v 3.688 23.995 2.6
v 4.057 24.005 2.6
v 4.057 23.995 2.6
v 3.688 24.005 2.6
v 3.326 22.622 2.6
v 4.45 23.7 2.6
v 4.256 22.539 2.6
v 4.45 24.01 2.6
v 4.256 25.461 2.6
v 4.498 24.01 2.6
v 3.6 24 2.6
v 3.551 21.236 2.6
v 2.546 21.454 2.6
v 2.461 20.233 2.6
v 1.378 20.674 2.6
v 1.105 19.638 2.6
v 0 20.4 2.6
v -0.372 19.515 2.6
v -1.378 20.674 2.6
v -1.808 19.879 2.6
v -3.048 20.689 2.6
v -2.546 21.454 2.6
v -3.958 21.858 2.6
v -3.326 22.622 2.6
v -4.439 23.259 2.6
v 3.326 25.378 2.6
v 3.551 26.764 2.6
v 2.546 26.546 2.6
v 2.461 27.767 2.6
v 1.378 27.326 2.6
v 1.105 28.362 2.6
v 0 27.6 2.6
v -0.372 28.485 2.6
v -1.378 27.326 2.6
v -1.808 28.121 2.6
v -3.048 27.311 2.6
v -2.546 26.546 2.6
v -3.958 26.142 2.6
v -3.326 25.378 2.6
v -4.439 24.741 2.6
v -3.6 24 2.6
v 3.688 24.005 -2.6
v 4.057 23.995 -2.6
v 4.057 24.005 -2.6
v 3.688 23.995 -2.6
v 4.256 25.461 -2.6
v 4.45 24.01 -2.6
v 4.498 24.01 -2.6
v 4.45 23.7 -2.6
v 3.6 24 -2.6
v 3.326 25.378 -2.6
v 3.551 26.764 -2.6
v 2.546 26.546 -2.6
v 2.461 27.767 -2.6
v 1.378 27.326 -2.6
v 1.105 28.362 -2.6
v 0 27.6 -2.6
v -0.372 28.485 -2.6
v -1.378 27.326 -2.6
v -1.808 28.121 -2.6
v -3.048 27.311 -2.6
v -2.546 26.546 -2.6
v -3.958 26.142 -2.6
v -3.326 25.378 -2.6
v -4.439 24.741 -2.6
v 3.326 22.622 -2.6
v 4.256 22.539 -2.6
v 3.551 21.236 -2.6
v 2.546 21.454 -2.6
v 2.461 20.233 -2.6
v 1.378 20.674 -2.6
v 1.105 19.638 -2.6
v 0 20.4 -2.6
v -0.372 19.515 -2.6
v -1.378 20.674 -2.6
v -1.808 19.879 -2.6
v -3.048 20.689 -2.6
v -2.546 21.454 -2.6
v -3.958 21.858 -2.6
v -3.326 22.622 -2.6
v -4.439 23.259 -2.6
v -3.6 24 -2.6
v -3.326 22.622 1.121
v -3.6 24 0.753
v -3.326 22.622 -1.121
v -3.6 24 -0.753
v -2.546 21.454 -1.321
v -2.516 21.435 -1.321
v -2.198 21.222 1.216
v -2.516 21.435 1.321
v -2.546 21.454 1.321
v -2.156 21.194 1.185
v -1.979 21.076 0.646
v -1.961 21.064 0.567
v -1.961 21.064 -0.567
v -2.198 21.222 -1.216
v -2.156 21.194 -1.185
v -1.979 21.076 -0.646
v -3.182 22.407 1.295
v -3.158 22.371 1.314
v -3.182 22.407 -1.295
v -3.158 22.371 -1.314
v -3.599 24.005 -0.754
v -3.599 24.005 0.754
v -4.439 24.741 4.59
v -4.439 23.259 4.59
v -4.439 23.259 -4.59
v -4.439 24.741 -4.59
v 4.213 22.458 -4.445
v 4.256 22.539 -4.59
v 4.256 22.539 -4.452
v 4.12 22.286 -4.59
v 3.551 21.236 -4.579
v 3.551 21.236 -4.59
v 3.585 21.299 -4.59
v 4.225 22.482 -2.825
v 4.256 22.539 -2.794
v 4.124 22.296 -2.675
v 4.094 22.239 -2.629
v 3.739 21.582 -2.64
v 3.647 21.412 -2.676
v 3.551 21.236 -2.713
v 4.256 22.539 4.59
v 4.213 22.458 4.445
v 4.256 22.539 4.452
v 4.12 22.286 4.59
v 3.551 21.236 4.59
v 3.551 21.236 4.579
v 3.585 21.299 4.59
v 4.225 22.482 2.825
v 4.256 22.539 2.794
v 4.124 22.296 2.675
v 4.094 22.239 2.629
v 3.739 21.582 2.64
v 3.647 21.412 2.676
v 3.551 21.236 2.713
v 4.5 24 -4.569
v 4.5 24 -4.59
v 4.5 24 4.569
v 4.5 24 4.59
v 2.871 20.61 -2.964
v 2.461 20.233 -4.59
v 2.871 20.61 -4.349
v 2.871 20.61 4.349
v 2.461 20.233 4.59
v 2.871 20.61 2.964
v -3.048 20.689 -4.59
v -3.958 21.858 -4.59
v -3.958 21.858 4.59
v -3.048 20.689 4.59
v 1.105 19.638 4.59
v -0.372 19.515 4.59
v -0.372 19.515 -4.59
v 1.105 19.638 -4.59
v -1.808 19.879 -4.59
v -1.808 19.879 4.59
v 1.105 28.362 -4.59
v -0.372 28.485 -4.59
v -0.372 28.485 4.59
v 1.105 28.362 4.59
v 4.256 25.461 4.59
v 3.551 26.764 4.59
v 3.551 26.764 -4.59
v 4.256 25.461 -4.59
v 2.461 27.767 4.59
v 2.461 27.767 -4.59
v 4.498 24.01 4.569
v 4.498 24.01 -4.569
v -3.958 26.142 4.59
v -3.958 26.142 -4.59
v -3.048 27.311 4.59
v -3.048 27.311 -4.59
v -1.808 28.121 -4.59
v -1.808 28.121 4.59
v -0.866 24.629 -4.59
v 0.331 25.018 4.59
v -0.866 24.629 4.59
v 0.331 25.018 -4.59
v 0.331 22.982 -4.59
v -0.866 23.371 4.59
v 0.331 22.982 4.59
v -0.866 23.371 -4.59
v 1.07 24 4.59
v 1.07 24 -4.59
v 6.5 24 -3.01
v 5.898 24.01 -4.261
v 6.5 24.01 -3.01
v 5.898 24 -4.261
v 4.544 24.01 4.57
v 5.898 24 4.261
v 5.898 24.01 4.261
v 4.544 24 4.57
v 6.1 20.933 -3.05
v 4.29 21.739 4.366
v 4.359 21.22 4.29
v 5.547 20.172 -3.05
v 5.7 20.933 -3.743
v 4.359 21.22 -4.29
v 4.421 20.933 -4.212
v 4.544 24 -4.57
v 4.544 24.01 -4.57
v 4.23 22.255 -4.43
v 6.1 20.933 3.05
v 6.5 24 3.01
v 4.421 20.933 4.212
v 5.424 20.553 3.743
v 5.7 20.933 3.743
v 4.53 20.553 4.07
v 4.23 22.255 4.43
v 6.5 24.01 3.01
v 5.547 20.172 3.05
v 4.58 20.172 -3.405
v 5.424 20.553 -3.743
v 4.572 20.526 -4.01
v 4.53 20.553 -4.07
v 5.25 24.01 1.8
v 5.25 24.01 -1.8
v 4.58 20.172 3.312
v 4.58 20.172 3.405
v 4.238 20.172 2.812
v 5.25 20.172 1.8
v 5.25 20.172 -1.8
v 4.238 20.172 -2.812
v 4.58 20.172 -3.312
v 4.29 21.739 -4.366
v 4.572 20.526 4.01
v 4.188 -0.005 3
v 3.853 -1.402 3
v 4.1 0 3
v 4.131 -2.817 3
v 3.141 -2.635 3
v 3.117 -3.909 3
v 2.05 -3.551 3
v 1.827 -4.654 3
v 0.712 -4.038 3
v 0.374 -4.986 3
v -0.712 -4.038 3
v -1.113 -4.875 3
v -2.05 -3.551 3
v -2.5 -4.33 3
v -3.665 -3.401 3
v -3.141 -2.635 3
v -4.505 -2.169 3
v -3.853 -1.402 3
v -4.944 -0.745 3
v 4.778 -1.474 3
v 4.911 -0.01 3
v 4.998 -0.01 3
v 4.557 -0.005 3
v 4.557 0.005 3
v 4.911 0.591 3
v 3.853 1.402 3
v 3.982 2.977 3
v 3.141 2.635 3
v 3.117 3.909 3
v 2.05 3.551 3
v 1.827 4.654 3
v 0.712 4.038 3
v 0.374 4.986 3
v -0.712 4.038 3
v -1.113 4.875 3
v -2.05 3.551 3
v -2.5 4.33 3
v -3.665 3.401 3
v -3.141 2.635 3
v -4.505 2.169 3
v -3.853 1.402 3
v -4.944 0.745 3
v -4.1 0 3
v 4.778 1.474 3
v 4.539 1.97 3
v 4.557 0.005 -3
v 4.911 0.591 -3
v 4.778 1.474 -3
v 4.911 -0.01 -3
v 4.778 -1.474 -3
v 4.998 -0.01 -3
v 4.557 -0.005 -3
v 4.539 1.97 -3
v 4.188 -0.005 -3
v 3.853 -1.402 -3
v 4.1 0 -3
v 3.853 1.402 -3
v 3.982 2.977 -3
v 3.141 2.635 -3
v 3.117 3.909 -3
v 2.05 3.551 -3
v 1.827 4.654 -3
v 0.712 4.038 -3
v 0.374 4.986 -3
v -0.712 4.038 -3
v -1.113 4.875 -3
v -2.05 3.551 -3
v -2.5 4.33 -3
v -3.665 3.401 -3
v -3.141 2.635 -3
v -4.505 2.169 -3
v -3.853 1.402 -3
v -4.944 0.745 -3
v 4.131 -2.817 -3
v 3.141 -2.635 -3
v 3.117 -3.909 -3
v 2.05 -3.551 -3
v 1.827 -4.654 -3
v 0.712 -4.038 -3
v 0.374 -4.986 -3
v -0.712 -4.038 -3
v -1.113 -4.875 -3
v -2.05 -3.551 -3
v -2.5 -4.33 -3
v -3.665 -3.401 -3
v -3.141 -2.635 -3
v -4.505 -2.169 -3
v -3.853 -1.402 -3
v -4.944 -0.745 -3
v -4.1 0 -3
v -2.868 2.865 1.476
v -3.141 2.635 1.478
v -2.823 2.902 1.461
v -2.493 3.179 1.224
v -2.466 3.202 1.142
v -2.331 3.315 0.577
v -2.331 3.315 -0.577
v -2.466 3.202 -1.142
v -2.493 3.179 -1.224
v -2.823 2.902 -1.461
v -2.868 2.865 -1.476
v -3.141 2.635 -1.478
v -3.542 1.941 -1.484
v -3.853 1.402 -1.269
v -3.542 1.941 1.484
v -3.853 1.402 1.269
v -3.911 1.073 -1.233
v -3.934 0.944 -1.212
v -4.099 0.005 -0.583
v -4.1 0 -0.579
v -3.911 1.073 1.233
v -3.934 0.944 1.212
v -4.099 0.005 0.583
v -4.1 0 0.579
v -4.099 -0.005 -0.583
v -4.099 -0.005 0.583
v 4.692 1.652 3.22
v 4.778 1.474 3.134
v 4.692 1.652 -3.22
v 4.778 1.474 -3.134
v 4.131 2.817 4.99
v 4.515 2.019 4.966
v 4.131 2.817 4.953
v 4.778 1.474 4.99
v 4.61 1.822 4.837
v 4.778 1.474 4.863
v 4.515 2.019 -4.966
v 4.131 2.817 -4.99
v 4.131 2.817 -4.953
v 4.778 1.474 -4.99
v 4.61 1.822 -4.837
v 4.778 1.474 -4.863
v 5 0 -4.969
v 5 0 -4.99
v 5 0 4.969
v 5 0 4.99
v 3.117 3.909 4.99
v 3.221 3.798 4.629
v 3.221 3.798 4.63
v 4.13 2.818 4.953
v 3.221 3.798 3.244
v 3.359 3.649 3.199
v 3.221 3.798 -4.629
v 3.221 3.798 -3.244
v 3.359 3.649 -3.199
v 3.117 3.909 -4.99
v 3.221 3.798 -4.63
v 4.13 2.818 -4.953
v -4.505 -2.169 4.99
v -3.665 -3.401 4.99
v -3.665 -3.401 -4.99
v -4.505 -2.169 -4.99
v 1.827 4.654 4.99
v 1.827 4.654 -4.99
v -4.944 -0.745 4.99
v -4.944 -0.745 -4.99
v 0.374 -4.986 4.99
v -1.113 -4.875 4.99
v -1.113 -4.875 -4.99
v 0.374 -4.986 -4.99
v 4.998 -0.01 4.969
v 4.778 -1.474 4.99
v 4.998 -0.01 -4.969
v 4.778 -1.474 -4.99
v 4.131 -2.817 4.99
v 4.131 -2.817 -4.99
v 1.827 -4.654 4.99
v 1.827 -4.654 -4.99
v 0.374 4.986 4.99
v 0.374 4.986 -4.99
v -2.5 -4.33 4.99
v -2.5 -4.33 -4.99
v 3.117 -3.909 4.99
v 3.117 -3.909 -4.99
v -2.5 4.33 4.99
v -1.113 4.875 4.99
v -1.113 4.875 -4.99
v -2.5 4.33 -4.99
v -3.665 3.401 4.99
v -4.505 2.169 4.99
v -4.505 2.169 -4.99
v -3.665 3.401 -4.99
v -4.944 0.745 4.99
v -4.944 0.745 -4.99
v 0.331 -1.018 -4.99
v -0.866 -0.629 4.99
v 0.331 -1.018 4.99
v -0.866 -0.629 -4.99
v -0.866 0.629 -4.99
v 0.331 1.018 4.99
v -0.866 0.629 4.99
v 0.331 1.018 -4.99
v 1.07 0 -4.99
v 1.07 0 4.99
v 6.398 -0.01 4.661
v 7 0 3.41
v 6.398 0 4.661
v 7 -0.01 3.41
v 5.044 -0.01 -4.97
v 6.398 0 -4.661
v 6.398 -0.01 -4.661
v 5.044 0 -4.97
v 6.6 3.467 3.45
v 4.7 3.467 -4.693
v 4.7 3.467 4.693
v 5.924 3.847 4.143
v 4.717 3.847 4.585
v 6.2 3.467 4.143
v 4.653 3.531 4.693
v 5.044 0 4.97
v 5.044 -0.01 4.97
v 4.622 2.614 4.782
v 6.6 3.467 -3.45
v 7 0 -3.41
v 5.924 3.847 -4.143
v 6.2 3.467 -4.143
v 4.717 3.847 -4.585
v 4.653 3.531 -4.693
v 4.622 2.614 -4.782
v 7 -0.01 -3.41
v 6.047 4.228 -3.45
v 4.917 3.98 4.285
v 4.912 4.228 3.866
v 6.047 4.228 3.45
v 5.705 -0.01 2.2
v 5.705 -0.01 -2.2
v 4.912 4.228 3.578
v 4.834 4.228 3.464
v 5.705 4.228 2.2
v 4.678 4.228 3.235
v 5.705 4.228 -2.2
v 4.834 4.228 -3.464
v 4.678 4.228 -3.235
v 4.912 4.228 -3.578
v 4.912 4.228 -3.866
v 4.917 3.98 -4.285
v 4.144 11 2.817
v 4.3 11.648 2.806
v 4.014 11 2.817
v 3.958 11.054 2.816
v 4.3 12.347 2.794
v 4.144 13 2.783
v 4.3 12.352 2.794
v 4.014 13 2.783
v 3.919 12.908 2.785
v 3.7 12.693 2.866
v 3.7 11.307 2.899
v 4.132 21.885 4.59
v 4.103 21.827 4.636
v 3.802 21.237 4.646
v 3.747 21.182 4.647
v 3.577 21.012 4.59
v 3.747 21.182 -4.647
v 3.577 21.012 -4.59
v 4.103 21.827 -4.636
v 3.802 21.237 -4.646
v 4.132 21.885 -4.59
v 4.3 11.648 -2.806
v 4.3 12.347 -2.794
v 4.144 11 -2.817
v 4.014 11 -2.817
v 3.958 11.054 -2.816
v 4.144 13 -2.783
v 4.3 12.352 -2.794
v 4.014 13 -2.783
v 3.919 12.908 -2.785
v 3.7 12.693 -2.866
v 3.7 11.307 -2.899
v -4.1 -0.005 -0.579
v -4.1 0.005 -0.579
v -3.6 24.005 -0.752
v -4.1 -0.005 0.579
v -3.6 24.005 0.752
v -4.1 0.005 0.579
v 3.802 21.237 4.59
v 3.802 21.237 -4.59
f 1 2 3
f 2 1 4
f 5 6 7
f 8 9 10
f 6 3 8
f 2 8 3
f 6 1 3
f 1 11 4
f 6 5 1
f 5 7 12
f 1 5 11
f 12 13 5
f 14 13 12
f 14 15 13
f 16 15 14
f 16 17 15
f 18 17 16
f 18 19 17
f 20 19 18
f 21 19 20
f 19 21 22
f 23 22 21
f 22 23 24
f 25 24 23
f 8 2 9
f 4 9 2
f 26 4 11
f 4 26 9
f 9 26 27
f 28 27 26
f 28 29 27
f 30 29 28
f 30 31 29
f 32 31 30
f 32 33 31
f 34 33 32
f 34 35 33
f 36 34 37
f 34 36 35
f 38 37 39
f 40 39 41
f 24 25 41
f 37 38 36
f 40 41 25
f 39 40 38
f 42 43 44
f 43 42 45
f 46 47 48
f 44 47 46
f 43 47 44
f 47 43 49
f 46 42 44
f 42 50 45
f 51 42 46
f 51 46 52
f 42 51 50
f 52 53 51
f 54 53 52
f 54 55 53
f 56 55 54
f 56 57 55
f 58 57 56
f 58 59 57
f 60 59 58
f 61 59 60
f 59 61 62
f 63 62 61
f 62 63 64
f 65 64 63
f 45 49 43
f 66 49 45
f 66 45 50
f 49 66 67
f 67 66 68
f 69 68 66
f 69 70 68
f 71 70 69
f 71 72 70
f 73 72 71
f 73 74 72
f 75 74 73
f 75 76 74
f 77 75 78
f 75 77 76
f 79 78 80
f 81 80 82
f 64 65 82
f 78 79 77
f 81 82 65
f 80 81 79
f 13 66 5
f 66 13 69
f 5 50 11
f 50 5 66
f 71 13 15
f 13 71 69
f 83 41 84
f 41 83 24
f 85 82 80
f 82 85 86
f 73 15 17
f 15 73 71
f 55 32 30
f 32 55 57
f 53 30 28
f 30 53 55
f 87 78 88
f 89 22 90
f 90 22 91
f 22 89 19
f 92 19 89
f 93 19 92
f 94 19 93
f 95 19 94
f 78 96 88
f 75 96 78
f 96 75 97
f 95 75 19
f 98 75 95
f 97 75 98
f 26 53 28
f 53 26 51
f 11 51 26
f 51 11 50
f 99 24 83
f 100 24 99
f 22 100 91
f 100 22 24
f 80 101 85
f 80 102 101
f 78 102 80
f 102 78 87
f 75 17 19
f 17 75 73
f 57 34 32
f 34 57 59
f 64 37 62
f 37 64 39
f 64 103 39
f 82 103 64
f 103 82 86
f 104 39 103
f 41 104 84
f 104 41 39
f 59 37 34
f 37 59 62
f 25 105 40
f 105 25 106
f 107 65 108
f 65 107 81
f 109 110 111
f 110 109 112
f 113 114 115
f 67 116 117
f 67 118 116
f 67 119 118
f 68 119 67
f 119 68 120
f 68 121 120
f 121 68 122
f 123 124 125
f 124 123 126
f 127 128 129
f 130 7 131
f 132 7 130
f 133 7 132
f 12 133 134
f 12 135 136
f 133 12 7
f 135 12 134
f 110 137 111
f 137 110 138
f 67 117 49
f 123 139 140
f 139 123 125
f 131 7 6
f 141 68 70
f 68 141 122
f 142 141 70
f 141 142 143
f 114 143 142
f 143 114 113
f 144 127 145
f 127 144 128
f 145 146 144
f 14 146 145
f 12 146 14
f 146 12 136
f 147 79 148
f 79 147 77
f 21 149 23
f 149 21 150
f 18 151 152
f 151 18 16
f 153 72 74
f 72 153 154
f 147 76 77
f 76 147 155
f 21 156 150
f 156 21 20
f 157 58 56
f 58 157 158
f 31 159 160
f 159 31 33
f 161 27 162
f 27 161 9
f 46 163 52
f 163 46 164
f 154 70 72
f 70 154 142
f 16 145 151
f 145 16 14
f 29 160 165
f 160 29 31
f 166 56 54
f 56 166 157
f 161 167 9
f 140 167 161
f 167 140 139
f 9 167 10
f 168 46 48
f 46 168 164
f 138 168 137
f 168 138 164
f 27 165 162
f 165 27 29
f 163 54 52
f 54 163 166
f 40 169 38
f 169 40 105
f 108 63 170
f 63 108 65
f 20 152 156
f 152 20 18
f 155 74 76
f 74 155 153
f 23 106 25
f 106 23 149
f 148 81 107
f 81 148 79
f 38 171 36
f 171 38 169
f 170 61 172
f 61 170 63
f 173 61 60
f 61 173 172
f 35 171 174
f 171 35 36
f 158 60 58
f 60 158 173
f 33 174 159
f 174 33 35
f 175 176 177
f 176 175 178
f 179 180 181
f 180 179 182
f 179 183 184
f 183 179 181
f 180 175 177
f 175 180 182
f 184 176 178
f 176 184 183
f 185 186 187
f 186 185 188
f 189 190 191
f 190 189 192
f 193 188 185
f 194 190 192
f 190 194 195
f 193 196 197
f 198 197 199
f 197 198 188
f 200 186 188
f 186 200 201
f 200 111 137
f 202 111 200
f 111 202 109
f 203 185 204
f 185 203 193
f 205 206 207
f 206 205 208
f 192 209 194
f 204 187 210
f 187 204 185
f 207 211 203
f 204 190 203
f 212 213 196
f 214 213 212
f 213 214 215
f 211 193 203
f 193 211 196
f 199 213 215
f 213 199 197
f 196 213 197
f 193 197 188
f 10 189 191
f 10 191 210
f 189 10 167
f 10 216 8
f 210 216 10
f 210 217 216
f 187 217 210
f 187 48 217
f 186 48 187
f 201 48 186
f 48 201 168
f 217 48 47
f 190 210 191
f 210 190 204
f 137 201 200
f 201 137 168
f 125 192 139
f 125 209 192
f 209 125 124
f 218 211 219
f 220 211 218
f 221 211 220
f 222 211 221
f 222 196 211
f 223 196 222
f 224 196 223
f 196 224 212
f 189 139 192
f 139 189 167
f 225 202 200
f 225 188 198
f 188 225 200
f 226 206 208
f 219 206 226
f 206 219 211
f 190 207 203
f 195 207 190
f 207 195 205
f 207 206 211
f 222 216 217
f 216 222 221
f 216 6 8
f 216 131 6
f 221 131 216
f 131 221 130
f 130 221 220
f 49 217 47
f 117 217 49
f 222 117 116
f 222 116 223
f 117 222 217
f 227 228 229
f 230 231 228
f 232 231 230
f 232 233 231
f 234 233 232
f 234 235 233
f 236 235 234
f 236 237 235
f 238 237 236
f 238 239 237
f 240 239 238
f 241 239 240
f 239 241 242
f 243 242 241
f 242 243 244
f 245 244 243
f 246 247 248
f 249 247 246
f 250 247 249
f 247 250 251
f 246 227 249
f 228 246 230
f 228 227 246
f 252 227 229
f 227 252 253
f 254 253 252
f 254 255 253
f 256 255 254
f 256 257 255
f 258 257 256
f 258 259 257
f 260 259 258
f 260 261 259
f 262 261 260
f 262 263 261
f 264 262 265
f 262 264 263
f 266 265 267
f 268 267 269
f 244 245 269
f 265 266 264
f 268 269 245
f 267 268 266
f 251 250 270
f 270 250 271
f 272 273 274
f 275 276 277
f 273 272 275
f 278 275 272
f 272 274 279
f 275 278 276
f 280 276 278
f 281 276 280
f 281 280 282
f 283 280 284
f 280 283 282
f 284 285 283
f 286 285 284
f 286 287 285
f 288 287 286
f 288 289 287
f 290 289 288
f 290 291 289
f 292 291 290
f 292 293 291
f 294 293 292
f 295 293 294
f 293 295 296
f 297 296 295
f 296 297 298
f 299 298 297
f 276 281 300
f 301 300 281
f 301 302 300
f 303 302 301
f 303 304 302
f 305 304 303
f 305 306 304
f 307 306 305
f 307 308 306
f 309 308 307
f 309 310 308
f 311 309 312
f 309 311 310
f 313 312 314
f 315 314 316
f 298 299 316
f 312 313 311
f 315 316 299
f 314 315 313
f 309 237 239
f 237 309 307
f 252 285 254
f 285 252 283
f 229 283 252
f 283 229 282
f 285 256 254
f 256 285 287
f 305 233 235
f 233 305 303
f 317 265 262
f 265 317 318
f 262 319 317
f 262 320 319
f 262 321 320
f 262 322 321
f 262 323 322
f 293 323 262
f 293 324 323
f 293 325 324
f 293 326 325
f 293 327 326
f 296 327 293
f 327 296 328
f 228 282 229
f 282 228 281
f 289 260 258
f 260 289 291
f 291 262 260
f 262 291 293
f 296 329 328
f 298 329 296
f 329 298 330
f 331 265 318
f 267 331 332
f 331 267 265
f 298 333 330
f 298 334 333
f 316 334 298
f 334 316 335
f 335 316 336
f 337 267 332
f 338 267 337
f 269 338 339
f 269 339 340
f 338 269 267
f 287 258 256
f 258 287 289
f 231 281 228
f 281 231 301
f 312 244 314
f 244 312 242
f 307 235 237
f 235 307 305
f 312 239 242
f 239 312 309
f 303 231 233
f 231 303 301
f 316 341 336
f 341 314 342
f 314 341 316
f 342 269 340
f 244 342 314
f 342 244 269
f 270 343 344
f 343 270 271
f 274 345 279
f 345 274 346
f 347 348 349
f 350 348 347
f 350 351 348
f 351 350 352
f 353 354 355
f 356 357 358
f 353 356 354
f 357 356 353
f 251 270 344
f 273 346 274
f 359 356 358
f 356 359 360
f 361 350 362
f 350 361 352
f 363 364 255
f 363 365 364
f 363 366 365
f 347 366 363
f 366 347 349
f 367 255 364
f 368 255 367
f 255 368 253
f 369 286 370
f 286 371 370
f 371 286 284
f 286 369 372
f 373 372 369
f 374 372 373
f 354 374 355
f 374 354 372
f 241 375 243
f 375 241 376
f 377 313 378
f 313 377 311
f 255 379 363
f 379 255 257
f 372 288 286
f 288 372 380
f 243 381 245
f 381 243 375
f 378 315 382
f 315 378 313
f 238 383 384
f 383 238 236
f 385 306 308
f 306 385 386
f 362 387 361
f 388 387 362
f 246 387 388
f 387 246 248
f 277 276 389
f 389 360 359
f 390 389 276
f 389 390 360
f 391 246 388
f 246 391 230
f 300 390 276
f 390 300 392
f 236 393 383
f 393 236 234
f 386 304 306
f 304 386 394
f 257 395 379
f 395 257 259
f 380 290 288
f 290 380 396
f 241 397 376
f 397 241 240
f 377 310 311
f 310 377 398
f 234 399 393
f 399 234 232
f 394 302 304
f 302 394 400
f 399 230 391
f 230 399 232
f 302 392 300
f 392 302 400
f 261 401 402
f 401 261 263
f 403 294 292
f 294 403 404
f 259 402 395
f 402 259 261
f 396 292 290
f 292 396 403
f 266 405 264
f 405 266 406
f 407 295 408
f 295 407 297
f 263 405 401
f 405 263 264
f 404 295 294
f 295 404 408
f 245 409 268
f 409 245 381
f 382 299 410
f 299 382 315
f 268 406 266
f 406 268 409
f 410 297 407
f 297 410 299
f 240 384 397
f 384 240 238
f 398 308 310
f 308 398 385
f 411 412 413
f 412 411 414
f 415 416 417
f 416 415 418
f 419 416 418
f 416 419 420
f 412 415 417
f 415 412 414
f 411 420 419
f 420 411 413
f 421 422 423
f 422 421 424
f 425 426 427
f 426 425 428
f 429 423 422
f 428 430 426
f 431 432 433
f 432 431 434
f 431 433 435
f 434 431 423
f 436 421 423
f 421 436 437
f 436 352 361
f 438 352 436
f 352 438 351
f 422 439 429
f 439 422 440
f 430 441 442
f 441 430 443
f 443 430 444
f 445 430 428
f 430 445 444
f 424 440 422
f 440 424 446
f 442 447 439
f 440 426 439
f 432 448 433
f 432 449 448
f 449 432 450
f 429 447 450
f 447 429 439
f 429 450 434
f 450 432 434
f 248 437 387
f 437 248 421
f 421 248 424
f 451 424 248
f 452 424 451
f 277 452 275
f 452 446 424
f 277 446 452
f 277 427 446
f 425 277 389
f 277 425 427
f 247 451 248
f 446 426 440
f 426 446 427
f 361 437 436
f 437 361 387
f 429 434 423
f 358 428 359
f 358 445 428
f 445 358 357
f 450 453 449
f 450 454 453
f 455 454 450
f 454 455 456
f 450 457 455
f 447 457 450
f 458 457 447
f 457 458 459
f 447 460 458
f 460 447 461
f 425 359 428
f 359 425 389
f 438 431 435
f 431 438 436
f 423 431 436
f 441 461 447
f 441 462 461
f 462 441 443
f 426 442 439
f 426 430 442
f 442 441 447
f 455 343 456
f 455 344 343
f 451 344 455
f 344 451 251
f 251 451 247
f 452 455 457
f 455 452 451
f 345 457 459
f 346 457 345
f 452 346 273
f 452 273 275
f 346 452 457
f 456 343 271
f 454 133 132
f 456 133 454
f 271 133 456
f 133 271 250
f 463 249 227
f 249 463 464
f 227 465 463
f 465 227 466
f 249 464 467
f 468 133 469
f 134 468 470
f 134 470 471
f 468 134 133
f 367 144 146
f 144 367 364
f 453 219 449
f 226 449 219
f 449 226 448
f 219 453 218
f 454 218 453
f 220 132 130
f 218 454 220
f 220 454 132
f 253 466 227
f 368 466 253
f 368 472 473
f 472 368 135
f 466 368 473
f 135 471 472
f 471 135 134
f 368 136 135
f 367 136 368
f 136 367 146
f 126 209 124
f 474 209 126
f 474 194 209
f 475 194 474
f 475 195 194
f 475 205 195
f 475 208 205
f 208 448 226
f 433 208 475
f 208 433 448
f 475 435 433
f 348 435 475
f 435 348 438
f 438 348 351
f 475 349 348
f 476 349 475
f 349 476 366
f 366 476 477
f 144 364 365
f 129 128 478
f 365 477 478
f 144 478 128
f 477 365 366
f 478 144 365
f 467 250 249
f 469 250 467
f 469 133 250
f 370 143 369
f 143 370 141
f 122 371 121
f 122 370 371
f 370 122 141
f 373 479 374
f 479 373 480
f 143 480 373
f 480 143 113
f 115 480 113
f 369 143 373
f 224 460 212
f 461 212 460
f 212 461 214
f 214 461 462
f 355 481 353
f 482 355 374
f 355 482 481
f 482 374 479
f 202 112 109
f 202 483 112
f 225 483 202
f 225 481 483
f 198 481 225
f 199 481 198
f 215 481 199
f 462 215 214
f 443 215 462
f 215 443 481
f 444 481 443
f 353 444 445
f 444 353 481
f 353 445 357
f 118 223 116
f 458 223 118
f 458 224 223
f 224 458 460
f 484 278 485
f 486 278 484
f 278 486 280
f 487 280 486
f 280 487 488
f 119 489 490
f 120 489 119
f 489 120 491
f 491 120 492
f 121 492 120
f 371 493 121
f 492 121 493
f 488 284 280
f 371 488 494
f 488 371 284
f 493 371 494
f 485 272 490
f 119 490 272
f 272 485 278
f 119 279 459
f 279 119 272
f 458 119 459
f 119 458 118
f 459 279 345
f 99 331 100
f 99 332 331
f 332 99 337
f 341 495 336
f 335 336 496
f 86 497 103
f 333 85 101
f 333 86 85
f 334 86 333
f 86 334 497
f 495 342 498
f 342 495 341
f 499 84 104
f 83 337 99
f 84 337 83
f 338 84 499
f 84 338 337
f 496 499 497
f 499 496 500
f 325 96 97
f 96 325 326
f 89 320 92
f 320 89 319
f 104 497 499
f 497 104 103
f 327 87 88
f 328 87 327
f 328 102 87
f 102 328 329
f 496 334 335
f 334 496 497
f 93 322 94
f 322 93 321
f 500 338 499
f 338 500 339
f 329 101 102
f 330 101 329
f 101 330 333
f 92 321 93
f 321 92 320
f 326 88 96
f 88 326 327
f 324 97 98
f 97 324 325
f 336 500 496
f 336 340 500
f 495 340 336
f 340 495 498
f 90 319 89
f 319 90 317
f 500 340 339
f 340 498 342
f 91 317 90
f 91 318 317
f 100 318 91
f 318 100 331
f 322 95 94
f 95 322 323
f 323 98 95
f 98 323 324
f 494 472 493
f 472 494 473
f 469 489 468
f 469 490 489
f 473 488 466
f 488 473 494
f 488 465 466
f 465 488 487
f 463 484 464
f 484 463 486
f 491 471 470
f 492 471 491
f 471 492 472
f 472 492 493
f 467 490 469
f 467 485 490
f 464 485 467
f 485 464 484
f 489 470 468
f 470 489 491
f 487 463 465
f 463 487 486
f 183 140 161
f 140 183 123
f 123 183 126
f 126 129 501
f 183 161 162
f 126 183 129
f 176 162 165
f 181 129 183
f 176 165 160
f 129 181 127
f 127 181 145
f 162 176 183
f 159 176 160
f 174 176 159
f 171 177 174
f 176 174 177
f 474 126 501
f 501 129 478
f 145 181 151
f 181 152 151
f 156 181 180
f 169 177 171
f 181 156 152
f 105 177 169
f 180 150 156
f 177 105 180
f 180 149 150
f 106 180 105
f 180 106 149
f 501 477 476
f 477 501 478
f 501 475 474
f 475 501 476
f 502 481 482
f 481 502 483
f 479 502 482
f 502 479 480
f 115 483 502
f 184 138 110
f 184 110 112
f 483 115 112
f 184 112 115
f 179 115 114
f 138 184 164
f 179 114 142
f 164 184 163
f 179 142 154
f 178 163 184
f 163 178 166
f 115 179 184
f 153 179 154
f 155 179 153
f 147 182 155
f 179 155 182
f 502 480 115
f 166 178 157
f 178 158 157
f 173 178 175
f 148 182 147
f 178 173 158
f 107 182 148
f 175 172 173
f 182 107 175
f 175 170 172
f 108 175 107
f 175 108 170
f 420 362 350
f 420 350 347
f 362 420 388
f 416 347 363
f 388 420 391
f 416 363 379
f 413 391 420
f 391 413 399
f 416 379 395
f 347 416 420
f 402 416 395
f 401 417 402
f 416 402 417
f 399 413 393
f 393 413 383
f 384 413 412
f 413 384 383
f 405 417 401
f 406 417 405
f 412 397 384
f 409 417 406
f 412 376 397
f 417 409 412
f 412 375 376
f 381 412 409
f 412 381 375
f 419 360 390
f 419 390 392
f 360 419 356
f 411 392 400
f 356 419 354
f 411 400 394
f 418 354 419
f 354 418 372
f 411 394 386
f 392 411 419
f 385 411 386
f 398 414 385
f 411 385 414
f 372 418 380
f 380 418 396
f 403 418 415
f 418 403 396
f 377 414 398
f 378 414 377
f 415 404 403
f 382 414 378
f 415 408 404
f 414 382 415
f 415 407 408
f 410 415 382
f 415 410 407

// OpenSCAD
$fa = 10; 
$fs = 1.5;


difference() {
	union() {
		translate(v = [0, 24, 0]) {
			union() {
				rotate(a = [180, 0, 0]) {
					difference() {
						cylinder(center = true, h = 9.2000000000, r = 4.5000000000);
						difference() {
							cylinder(center = true, h = 5.2000000000, r = 4.5100000000);
							cylinder(center = true, h = 5.2100000000, r = 3.6000000000);
						}
						cylinder(center = true, h = 9.2100000000, r = 1.0700000000);
					}
				}
				rotate(a = [180, 0, 0]) {
					translate(v = [0, 3.6000000000, 0]) {
						difference() {
							hull() {
								translate(v = [4.0000000000, -3.6000000000, 3.0000000000]) {
									rotate(a = [90, 0, 0]) {
										cylinder(h = 0.0100000000, r = 1.6000000000);
									}
								}
								translate(v = [4.0000000000, -3.6000000000, -3.0000000000]) {
									rotate(a = [90, 0, 0]) {
										cylinder(h = 0.0100000000, r = 1.6000000000);
									}
								}
								translate(v = [4.9000000000, -3.6000000000, -3.0100000000]) {
									rotate(a = [90, 0, 0]) {
										cylinder(h = 0.0100000000, r = 1.6000000000);
									}
								}
								translate(v = [4.9000000000, -3.6000000000, 3.0100000000]) {
									rotate(a = [90, 0, 0]) {
										cylinder(h = 0.0100000000, r = 1.6000000000);
									}
								}
								translate(v = [4.0000000000, 0, 2.8000000000]) {
									translate(v = [-0.2000000000, -0.5333333333, 0.8000000000]) {
										sphere(r = 0.8000000000);
									}
								}
								translate(v = [4.0000000000, 0, -2.8000000000]) {
									translate(v = [-0.2000000000, -0.5333333333, -0.8000000000]) {
										sphere(r = 0.8000000000);
									}
								}
								translate(v = [4.9000000000, 0, 2.2500000000]) {
									translate(v = [0.4000000000, -0.5333333333, 0.8000000000]) {
										sphere(r = 0.8000000000);
									}
								}
								translate(v = [4.9000000000, 0, -2.2500000000]) {
									translate(v = [0.4000000000, -0.5333333333, -0.8000000000]) {
										sphere(r = 0.8000000000);
									}
								}
							}
							hull() {
								translate(v = [0, 5.6000000000, 0]) {
									translate(v = [0, 0, -3.0000000000]) {
										rotate_extrude(angle = 360, convexity = 1) {
											offset(r = 1.2000000000) {
												offset(chamfer = false, delta = -1.2000000000) {
													union() {
														square(size = [5.2500000000, 6.0000000000]);
														square(size = [1.2000000000, 6.0000000000]);
													}
												}
											}
										}
									}
								}
								translate(v = [0, -6.4000000000, 0]) {
									translate(v = [0, 0, -3.0000000000]) {
										rotate_extrude(angle = 360, convexity = 1) {
											offset(r = 1.2000000000) {
												offset(chamfer = false, delta = -1.2000000000) {
													union() {
														square(size = [5.2500000000, 6.0000000000]);
														square(size = [1.2000000000, 6.0000000000]);
													}
												}
											}
										}
									}
								}
							}
						}
					}
				}
			}
		}
		difference() {
			cylinder(center = true, h = 10.0000000000, r = 5.0000000000);
			difference() {
				cylinder(center = true, h = 6.0000000000, r = 5.0100000000);
				cylinder(center = true, h = 6.0100000000, r = 4.1000000000);
			}
			cylinder(center = true, h = 10.0100000000, r = 1.0700000000);
		}
		hull() {
			translate(v = [0, 24, 0]) {
				translate(v = [3.6500000000, 0, 3.6000000000]) {
					rotate(a = [90, 0, 0]) {
						intersection() {
							cube(center = true, size = [1.7000000000, 2.0000000000, 0.0100000000]);
							resize(newsize = [1.9720000000, 0, 0]) {
								cylinder(center = true, d = 2.3200000000, h = 0.0100000000);
							}
						}
					}
				}
			}
			translate(v = [4.1500000000, 0, 4.0000000000]) {
				rotate(a = [90, 0, 0]) {
					intersection() {
						cube(center = true, size = [1.7000000000, 2.0000000000, 0.0100000000]);
						resize(newsize = [1.9720000000, 0, 0]) {
							cylinder(center = true, d = 2.3200000000, h = 0.0100000000);
						}
					}
				}
			}
		}
		hull() {
			translate(v = [0, 24, 0]) {
				translate(v = [3.6500000000, 0, -3.6000000000]) {
					rotate(a = [90, 0, 0]) {
						intersection() {
							cube(center = true, size = [1.7000000000, 2.0000000000, 0.0100000000]);
							resize(newsize = [1.9720000000, 0, 0]) {
								cylinder(center = true, d = 2.3200000000, h = 0.0100000000);
							}
						}
					}
				}
			}
			translate(v = [4.1500000000, 0, -4.0000000000]) {
				rotate(a = [90, 0, 0]) {
					intersection() {
						cube(center = true, size = [1.7000000000, 2.0000000000, 0.0100000000]);
						resize(newsize = [1.9720000000, 0, 0]) {
							cylinder(center = true, d = 2.3200000000, h = 0.0100000000);
						}
					}
				}
			}
		}
		hull() {
			translate(v = [0, 24, 0]) {
				translate(v = [-2.7500000000, 0, 0]) {
					rotate(a = [90, 0, 0]) {
						intersection() {
							cube(center = true, size = [1.7000000000, 2.6000000000, 0.0100000000]);
							resize(newsize = [1.9720000000, 0, 0]) {
								cylinder(center = true, d = 3.0160000000, h = 0.0100000000);
							}
						}
					}
				}
			}
			translate(v = [-3.2500000000, 0, 0]) {
				rotate(a = [90, 0, 0]) {
					intersection() {
						cube(center = true, size = [1.7000000000, 3.0000000000, 0.0100000000]);
						resize(newsize = [1.9720000000, 0, 0]) {
							cylinder(center = true, d = 3.4800000000, h = 0.0100000000);
						}
					}
				}
			}
		}
		translate(v = [0.5000000000, 12.0000000000, 0]) {
			hull() {
				union() {
					translate(v = [3.5000000000, 0, 0]) {
						intersection() {
							cube(center = true, size = [0.6000000000, 2.0000000000, 7.2000000000]);
							resize(newsize = [0.6960000000, 0, 0]) {
								cylinder(center = true, d = 2.3200000000, h = 7.2000000000);
							}
						}
					}
					translate(v = [3.5000000000, 0, 0]) {
						intersection() {
							cube(center = true, size = [0.6000000000, 2.0000000000, 8.8000000000]);
							resize(newsize = [0.6960000000, 0, 0]) {
								cylinder(center = true, d = 2.3200000000, h = 8.8000000000);
							}
						}
					}
				}
			}
		}
		translate(v = [0, 4.0000000000, 0]) {
			difference() {
				hull() {
					translate(v = [4.5000000000, -4.0000000000, 3.4000000000]) {
						rotate(a = [90, 0, 0]) {
							cylinder(h = 0.0100000000, r = 1.6000000000);
						}
					}
					translate(v = [4.5000000000, -4.0000000000, -3.4000000000]) {
						rotate(a = [90, 0, 0]) {
							cylinder(h = 0.0100000000, r = 1.6000000000);
						}
					}
					translate(v = [5.4000000000, -4.0000000000, -3.4100000000]) {
						rotate(a = [90, 0, 0]) {
							cylinder(h = 0.0100000000, r = 1.6000000000);
						}
					}
					translate(v = [5.4000000000, -4.0000000000, 3.4100000000]) {
						rotate(a = [90, 0, 0]) {
							cylinder(h = 0.0100000000, r = 1.6000000000);
						}
					}
					translate(v = [4.5000000000, 0, 3.2000000000]) {
						translate(v = [-0.2000000000, -0.5333333333, 0.8000000000]) {
							sphere(r = 0.8000000000);
						}
					}
					translate(v = [4.5000000000, 0, -3.2000000000]) {
						translate(v = [-0.2000000000, -0.5333333333, -0.8000000000]) {
							sphere(r = 0.8000000000);
						}
					}
					translate(v = [5.4000000000, 0, 2.6500000000]) {
						translate(v = [0.4000000000, -0.5333333333, 0.8000000000]) {
							sphere(r = 0.8000000000);
						}
					}
					translate(v = [5.4000000000, 0, -2.6500000000]) {
						translate(v = [0.4000000000, -0.5333333333, -0.8000000000]) {
							sphere(r = 0.8000000000);
						}
					}
				}
				hull() {
					translate(v = [0, 2, 0]) {
						translate(v = [0, 0, -3.4000000000]) {
							rotate_extrude(angle = 360, convexity = 1) {
								offset(r = 1.2000000000) {
									offset(chamfer = false, delta = -1.2000000000) {
										union() {
											square(size = [5.7500000000, 6.8000000000]);
											square(size = [1.2000000000, 6.8000000000]);
										}
									}
								}
							}
						}
					}
					translate(v = [0, -10, 0]) {
						translate(v = [0, 0, -3.4000000000]) {
							rotate_extrude(angle = 360, convexity = 1) {
								offset(r = 1.2000000000) {
									offset(chamfer = false, delta = -1.2000000000) {
										union() {
											square(size = [5.7500000000, 6.8000000000]);
											square(size = [1.2000000000, 6.8000000000]);
										}
									}
								}
							}
						}
					}
				}
			}
		}
	}
	translate(v = [0, 24, 0]) {
		union() {
			translate(v = [0, 0, 6.5900000000]) {
				cylinder(center = true, h = 4, r = 4.7000000000);
			}
			translate(v = [0, 0, -6.5900000000]) {
				cylinder(center = true, h = 4, r = 4.7000000000);
			}
		}
	}
	union() {
		translate(v = [0, 0, 6.9900000000]) {
			cylinder(center = true, h = 4, r = 5.2000000000);
		}
		translate(v = [0, 0, -6.9900000000]) {
			cylinder(center = true, h = 4, r = 5.2000000000);
		}
	}
}
